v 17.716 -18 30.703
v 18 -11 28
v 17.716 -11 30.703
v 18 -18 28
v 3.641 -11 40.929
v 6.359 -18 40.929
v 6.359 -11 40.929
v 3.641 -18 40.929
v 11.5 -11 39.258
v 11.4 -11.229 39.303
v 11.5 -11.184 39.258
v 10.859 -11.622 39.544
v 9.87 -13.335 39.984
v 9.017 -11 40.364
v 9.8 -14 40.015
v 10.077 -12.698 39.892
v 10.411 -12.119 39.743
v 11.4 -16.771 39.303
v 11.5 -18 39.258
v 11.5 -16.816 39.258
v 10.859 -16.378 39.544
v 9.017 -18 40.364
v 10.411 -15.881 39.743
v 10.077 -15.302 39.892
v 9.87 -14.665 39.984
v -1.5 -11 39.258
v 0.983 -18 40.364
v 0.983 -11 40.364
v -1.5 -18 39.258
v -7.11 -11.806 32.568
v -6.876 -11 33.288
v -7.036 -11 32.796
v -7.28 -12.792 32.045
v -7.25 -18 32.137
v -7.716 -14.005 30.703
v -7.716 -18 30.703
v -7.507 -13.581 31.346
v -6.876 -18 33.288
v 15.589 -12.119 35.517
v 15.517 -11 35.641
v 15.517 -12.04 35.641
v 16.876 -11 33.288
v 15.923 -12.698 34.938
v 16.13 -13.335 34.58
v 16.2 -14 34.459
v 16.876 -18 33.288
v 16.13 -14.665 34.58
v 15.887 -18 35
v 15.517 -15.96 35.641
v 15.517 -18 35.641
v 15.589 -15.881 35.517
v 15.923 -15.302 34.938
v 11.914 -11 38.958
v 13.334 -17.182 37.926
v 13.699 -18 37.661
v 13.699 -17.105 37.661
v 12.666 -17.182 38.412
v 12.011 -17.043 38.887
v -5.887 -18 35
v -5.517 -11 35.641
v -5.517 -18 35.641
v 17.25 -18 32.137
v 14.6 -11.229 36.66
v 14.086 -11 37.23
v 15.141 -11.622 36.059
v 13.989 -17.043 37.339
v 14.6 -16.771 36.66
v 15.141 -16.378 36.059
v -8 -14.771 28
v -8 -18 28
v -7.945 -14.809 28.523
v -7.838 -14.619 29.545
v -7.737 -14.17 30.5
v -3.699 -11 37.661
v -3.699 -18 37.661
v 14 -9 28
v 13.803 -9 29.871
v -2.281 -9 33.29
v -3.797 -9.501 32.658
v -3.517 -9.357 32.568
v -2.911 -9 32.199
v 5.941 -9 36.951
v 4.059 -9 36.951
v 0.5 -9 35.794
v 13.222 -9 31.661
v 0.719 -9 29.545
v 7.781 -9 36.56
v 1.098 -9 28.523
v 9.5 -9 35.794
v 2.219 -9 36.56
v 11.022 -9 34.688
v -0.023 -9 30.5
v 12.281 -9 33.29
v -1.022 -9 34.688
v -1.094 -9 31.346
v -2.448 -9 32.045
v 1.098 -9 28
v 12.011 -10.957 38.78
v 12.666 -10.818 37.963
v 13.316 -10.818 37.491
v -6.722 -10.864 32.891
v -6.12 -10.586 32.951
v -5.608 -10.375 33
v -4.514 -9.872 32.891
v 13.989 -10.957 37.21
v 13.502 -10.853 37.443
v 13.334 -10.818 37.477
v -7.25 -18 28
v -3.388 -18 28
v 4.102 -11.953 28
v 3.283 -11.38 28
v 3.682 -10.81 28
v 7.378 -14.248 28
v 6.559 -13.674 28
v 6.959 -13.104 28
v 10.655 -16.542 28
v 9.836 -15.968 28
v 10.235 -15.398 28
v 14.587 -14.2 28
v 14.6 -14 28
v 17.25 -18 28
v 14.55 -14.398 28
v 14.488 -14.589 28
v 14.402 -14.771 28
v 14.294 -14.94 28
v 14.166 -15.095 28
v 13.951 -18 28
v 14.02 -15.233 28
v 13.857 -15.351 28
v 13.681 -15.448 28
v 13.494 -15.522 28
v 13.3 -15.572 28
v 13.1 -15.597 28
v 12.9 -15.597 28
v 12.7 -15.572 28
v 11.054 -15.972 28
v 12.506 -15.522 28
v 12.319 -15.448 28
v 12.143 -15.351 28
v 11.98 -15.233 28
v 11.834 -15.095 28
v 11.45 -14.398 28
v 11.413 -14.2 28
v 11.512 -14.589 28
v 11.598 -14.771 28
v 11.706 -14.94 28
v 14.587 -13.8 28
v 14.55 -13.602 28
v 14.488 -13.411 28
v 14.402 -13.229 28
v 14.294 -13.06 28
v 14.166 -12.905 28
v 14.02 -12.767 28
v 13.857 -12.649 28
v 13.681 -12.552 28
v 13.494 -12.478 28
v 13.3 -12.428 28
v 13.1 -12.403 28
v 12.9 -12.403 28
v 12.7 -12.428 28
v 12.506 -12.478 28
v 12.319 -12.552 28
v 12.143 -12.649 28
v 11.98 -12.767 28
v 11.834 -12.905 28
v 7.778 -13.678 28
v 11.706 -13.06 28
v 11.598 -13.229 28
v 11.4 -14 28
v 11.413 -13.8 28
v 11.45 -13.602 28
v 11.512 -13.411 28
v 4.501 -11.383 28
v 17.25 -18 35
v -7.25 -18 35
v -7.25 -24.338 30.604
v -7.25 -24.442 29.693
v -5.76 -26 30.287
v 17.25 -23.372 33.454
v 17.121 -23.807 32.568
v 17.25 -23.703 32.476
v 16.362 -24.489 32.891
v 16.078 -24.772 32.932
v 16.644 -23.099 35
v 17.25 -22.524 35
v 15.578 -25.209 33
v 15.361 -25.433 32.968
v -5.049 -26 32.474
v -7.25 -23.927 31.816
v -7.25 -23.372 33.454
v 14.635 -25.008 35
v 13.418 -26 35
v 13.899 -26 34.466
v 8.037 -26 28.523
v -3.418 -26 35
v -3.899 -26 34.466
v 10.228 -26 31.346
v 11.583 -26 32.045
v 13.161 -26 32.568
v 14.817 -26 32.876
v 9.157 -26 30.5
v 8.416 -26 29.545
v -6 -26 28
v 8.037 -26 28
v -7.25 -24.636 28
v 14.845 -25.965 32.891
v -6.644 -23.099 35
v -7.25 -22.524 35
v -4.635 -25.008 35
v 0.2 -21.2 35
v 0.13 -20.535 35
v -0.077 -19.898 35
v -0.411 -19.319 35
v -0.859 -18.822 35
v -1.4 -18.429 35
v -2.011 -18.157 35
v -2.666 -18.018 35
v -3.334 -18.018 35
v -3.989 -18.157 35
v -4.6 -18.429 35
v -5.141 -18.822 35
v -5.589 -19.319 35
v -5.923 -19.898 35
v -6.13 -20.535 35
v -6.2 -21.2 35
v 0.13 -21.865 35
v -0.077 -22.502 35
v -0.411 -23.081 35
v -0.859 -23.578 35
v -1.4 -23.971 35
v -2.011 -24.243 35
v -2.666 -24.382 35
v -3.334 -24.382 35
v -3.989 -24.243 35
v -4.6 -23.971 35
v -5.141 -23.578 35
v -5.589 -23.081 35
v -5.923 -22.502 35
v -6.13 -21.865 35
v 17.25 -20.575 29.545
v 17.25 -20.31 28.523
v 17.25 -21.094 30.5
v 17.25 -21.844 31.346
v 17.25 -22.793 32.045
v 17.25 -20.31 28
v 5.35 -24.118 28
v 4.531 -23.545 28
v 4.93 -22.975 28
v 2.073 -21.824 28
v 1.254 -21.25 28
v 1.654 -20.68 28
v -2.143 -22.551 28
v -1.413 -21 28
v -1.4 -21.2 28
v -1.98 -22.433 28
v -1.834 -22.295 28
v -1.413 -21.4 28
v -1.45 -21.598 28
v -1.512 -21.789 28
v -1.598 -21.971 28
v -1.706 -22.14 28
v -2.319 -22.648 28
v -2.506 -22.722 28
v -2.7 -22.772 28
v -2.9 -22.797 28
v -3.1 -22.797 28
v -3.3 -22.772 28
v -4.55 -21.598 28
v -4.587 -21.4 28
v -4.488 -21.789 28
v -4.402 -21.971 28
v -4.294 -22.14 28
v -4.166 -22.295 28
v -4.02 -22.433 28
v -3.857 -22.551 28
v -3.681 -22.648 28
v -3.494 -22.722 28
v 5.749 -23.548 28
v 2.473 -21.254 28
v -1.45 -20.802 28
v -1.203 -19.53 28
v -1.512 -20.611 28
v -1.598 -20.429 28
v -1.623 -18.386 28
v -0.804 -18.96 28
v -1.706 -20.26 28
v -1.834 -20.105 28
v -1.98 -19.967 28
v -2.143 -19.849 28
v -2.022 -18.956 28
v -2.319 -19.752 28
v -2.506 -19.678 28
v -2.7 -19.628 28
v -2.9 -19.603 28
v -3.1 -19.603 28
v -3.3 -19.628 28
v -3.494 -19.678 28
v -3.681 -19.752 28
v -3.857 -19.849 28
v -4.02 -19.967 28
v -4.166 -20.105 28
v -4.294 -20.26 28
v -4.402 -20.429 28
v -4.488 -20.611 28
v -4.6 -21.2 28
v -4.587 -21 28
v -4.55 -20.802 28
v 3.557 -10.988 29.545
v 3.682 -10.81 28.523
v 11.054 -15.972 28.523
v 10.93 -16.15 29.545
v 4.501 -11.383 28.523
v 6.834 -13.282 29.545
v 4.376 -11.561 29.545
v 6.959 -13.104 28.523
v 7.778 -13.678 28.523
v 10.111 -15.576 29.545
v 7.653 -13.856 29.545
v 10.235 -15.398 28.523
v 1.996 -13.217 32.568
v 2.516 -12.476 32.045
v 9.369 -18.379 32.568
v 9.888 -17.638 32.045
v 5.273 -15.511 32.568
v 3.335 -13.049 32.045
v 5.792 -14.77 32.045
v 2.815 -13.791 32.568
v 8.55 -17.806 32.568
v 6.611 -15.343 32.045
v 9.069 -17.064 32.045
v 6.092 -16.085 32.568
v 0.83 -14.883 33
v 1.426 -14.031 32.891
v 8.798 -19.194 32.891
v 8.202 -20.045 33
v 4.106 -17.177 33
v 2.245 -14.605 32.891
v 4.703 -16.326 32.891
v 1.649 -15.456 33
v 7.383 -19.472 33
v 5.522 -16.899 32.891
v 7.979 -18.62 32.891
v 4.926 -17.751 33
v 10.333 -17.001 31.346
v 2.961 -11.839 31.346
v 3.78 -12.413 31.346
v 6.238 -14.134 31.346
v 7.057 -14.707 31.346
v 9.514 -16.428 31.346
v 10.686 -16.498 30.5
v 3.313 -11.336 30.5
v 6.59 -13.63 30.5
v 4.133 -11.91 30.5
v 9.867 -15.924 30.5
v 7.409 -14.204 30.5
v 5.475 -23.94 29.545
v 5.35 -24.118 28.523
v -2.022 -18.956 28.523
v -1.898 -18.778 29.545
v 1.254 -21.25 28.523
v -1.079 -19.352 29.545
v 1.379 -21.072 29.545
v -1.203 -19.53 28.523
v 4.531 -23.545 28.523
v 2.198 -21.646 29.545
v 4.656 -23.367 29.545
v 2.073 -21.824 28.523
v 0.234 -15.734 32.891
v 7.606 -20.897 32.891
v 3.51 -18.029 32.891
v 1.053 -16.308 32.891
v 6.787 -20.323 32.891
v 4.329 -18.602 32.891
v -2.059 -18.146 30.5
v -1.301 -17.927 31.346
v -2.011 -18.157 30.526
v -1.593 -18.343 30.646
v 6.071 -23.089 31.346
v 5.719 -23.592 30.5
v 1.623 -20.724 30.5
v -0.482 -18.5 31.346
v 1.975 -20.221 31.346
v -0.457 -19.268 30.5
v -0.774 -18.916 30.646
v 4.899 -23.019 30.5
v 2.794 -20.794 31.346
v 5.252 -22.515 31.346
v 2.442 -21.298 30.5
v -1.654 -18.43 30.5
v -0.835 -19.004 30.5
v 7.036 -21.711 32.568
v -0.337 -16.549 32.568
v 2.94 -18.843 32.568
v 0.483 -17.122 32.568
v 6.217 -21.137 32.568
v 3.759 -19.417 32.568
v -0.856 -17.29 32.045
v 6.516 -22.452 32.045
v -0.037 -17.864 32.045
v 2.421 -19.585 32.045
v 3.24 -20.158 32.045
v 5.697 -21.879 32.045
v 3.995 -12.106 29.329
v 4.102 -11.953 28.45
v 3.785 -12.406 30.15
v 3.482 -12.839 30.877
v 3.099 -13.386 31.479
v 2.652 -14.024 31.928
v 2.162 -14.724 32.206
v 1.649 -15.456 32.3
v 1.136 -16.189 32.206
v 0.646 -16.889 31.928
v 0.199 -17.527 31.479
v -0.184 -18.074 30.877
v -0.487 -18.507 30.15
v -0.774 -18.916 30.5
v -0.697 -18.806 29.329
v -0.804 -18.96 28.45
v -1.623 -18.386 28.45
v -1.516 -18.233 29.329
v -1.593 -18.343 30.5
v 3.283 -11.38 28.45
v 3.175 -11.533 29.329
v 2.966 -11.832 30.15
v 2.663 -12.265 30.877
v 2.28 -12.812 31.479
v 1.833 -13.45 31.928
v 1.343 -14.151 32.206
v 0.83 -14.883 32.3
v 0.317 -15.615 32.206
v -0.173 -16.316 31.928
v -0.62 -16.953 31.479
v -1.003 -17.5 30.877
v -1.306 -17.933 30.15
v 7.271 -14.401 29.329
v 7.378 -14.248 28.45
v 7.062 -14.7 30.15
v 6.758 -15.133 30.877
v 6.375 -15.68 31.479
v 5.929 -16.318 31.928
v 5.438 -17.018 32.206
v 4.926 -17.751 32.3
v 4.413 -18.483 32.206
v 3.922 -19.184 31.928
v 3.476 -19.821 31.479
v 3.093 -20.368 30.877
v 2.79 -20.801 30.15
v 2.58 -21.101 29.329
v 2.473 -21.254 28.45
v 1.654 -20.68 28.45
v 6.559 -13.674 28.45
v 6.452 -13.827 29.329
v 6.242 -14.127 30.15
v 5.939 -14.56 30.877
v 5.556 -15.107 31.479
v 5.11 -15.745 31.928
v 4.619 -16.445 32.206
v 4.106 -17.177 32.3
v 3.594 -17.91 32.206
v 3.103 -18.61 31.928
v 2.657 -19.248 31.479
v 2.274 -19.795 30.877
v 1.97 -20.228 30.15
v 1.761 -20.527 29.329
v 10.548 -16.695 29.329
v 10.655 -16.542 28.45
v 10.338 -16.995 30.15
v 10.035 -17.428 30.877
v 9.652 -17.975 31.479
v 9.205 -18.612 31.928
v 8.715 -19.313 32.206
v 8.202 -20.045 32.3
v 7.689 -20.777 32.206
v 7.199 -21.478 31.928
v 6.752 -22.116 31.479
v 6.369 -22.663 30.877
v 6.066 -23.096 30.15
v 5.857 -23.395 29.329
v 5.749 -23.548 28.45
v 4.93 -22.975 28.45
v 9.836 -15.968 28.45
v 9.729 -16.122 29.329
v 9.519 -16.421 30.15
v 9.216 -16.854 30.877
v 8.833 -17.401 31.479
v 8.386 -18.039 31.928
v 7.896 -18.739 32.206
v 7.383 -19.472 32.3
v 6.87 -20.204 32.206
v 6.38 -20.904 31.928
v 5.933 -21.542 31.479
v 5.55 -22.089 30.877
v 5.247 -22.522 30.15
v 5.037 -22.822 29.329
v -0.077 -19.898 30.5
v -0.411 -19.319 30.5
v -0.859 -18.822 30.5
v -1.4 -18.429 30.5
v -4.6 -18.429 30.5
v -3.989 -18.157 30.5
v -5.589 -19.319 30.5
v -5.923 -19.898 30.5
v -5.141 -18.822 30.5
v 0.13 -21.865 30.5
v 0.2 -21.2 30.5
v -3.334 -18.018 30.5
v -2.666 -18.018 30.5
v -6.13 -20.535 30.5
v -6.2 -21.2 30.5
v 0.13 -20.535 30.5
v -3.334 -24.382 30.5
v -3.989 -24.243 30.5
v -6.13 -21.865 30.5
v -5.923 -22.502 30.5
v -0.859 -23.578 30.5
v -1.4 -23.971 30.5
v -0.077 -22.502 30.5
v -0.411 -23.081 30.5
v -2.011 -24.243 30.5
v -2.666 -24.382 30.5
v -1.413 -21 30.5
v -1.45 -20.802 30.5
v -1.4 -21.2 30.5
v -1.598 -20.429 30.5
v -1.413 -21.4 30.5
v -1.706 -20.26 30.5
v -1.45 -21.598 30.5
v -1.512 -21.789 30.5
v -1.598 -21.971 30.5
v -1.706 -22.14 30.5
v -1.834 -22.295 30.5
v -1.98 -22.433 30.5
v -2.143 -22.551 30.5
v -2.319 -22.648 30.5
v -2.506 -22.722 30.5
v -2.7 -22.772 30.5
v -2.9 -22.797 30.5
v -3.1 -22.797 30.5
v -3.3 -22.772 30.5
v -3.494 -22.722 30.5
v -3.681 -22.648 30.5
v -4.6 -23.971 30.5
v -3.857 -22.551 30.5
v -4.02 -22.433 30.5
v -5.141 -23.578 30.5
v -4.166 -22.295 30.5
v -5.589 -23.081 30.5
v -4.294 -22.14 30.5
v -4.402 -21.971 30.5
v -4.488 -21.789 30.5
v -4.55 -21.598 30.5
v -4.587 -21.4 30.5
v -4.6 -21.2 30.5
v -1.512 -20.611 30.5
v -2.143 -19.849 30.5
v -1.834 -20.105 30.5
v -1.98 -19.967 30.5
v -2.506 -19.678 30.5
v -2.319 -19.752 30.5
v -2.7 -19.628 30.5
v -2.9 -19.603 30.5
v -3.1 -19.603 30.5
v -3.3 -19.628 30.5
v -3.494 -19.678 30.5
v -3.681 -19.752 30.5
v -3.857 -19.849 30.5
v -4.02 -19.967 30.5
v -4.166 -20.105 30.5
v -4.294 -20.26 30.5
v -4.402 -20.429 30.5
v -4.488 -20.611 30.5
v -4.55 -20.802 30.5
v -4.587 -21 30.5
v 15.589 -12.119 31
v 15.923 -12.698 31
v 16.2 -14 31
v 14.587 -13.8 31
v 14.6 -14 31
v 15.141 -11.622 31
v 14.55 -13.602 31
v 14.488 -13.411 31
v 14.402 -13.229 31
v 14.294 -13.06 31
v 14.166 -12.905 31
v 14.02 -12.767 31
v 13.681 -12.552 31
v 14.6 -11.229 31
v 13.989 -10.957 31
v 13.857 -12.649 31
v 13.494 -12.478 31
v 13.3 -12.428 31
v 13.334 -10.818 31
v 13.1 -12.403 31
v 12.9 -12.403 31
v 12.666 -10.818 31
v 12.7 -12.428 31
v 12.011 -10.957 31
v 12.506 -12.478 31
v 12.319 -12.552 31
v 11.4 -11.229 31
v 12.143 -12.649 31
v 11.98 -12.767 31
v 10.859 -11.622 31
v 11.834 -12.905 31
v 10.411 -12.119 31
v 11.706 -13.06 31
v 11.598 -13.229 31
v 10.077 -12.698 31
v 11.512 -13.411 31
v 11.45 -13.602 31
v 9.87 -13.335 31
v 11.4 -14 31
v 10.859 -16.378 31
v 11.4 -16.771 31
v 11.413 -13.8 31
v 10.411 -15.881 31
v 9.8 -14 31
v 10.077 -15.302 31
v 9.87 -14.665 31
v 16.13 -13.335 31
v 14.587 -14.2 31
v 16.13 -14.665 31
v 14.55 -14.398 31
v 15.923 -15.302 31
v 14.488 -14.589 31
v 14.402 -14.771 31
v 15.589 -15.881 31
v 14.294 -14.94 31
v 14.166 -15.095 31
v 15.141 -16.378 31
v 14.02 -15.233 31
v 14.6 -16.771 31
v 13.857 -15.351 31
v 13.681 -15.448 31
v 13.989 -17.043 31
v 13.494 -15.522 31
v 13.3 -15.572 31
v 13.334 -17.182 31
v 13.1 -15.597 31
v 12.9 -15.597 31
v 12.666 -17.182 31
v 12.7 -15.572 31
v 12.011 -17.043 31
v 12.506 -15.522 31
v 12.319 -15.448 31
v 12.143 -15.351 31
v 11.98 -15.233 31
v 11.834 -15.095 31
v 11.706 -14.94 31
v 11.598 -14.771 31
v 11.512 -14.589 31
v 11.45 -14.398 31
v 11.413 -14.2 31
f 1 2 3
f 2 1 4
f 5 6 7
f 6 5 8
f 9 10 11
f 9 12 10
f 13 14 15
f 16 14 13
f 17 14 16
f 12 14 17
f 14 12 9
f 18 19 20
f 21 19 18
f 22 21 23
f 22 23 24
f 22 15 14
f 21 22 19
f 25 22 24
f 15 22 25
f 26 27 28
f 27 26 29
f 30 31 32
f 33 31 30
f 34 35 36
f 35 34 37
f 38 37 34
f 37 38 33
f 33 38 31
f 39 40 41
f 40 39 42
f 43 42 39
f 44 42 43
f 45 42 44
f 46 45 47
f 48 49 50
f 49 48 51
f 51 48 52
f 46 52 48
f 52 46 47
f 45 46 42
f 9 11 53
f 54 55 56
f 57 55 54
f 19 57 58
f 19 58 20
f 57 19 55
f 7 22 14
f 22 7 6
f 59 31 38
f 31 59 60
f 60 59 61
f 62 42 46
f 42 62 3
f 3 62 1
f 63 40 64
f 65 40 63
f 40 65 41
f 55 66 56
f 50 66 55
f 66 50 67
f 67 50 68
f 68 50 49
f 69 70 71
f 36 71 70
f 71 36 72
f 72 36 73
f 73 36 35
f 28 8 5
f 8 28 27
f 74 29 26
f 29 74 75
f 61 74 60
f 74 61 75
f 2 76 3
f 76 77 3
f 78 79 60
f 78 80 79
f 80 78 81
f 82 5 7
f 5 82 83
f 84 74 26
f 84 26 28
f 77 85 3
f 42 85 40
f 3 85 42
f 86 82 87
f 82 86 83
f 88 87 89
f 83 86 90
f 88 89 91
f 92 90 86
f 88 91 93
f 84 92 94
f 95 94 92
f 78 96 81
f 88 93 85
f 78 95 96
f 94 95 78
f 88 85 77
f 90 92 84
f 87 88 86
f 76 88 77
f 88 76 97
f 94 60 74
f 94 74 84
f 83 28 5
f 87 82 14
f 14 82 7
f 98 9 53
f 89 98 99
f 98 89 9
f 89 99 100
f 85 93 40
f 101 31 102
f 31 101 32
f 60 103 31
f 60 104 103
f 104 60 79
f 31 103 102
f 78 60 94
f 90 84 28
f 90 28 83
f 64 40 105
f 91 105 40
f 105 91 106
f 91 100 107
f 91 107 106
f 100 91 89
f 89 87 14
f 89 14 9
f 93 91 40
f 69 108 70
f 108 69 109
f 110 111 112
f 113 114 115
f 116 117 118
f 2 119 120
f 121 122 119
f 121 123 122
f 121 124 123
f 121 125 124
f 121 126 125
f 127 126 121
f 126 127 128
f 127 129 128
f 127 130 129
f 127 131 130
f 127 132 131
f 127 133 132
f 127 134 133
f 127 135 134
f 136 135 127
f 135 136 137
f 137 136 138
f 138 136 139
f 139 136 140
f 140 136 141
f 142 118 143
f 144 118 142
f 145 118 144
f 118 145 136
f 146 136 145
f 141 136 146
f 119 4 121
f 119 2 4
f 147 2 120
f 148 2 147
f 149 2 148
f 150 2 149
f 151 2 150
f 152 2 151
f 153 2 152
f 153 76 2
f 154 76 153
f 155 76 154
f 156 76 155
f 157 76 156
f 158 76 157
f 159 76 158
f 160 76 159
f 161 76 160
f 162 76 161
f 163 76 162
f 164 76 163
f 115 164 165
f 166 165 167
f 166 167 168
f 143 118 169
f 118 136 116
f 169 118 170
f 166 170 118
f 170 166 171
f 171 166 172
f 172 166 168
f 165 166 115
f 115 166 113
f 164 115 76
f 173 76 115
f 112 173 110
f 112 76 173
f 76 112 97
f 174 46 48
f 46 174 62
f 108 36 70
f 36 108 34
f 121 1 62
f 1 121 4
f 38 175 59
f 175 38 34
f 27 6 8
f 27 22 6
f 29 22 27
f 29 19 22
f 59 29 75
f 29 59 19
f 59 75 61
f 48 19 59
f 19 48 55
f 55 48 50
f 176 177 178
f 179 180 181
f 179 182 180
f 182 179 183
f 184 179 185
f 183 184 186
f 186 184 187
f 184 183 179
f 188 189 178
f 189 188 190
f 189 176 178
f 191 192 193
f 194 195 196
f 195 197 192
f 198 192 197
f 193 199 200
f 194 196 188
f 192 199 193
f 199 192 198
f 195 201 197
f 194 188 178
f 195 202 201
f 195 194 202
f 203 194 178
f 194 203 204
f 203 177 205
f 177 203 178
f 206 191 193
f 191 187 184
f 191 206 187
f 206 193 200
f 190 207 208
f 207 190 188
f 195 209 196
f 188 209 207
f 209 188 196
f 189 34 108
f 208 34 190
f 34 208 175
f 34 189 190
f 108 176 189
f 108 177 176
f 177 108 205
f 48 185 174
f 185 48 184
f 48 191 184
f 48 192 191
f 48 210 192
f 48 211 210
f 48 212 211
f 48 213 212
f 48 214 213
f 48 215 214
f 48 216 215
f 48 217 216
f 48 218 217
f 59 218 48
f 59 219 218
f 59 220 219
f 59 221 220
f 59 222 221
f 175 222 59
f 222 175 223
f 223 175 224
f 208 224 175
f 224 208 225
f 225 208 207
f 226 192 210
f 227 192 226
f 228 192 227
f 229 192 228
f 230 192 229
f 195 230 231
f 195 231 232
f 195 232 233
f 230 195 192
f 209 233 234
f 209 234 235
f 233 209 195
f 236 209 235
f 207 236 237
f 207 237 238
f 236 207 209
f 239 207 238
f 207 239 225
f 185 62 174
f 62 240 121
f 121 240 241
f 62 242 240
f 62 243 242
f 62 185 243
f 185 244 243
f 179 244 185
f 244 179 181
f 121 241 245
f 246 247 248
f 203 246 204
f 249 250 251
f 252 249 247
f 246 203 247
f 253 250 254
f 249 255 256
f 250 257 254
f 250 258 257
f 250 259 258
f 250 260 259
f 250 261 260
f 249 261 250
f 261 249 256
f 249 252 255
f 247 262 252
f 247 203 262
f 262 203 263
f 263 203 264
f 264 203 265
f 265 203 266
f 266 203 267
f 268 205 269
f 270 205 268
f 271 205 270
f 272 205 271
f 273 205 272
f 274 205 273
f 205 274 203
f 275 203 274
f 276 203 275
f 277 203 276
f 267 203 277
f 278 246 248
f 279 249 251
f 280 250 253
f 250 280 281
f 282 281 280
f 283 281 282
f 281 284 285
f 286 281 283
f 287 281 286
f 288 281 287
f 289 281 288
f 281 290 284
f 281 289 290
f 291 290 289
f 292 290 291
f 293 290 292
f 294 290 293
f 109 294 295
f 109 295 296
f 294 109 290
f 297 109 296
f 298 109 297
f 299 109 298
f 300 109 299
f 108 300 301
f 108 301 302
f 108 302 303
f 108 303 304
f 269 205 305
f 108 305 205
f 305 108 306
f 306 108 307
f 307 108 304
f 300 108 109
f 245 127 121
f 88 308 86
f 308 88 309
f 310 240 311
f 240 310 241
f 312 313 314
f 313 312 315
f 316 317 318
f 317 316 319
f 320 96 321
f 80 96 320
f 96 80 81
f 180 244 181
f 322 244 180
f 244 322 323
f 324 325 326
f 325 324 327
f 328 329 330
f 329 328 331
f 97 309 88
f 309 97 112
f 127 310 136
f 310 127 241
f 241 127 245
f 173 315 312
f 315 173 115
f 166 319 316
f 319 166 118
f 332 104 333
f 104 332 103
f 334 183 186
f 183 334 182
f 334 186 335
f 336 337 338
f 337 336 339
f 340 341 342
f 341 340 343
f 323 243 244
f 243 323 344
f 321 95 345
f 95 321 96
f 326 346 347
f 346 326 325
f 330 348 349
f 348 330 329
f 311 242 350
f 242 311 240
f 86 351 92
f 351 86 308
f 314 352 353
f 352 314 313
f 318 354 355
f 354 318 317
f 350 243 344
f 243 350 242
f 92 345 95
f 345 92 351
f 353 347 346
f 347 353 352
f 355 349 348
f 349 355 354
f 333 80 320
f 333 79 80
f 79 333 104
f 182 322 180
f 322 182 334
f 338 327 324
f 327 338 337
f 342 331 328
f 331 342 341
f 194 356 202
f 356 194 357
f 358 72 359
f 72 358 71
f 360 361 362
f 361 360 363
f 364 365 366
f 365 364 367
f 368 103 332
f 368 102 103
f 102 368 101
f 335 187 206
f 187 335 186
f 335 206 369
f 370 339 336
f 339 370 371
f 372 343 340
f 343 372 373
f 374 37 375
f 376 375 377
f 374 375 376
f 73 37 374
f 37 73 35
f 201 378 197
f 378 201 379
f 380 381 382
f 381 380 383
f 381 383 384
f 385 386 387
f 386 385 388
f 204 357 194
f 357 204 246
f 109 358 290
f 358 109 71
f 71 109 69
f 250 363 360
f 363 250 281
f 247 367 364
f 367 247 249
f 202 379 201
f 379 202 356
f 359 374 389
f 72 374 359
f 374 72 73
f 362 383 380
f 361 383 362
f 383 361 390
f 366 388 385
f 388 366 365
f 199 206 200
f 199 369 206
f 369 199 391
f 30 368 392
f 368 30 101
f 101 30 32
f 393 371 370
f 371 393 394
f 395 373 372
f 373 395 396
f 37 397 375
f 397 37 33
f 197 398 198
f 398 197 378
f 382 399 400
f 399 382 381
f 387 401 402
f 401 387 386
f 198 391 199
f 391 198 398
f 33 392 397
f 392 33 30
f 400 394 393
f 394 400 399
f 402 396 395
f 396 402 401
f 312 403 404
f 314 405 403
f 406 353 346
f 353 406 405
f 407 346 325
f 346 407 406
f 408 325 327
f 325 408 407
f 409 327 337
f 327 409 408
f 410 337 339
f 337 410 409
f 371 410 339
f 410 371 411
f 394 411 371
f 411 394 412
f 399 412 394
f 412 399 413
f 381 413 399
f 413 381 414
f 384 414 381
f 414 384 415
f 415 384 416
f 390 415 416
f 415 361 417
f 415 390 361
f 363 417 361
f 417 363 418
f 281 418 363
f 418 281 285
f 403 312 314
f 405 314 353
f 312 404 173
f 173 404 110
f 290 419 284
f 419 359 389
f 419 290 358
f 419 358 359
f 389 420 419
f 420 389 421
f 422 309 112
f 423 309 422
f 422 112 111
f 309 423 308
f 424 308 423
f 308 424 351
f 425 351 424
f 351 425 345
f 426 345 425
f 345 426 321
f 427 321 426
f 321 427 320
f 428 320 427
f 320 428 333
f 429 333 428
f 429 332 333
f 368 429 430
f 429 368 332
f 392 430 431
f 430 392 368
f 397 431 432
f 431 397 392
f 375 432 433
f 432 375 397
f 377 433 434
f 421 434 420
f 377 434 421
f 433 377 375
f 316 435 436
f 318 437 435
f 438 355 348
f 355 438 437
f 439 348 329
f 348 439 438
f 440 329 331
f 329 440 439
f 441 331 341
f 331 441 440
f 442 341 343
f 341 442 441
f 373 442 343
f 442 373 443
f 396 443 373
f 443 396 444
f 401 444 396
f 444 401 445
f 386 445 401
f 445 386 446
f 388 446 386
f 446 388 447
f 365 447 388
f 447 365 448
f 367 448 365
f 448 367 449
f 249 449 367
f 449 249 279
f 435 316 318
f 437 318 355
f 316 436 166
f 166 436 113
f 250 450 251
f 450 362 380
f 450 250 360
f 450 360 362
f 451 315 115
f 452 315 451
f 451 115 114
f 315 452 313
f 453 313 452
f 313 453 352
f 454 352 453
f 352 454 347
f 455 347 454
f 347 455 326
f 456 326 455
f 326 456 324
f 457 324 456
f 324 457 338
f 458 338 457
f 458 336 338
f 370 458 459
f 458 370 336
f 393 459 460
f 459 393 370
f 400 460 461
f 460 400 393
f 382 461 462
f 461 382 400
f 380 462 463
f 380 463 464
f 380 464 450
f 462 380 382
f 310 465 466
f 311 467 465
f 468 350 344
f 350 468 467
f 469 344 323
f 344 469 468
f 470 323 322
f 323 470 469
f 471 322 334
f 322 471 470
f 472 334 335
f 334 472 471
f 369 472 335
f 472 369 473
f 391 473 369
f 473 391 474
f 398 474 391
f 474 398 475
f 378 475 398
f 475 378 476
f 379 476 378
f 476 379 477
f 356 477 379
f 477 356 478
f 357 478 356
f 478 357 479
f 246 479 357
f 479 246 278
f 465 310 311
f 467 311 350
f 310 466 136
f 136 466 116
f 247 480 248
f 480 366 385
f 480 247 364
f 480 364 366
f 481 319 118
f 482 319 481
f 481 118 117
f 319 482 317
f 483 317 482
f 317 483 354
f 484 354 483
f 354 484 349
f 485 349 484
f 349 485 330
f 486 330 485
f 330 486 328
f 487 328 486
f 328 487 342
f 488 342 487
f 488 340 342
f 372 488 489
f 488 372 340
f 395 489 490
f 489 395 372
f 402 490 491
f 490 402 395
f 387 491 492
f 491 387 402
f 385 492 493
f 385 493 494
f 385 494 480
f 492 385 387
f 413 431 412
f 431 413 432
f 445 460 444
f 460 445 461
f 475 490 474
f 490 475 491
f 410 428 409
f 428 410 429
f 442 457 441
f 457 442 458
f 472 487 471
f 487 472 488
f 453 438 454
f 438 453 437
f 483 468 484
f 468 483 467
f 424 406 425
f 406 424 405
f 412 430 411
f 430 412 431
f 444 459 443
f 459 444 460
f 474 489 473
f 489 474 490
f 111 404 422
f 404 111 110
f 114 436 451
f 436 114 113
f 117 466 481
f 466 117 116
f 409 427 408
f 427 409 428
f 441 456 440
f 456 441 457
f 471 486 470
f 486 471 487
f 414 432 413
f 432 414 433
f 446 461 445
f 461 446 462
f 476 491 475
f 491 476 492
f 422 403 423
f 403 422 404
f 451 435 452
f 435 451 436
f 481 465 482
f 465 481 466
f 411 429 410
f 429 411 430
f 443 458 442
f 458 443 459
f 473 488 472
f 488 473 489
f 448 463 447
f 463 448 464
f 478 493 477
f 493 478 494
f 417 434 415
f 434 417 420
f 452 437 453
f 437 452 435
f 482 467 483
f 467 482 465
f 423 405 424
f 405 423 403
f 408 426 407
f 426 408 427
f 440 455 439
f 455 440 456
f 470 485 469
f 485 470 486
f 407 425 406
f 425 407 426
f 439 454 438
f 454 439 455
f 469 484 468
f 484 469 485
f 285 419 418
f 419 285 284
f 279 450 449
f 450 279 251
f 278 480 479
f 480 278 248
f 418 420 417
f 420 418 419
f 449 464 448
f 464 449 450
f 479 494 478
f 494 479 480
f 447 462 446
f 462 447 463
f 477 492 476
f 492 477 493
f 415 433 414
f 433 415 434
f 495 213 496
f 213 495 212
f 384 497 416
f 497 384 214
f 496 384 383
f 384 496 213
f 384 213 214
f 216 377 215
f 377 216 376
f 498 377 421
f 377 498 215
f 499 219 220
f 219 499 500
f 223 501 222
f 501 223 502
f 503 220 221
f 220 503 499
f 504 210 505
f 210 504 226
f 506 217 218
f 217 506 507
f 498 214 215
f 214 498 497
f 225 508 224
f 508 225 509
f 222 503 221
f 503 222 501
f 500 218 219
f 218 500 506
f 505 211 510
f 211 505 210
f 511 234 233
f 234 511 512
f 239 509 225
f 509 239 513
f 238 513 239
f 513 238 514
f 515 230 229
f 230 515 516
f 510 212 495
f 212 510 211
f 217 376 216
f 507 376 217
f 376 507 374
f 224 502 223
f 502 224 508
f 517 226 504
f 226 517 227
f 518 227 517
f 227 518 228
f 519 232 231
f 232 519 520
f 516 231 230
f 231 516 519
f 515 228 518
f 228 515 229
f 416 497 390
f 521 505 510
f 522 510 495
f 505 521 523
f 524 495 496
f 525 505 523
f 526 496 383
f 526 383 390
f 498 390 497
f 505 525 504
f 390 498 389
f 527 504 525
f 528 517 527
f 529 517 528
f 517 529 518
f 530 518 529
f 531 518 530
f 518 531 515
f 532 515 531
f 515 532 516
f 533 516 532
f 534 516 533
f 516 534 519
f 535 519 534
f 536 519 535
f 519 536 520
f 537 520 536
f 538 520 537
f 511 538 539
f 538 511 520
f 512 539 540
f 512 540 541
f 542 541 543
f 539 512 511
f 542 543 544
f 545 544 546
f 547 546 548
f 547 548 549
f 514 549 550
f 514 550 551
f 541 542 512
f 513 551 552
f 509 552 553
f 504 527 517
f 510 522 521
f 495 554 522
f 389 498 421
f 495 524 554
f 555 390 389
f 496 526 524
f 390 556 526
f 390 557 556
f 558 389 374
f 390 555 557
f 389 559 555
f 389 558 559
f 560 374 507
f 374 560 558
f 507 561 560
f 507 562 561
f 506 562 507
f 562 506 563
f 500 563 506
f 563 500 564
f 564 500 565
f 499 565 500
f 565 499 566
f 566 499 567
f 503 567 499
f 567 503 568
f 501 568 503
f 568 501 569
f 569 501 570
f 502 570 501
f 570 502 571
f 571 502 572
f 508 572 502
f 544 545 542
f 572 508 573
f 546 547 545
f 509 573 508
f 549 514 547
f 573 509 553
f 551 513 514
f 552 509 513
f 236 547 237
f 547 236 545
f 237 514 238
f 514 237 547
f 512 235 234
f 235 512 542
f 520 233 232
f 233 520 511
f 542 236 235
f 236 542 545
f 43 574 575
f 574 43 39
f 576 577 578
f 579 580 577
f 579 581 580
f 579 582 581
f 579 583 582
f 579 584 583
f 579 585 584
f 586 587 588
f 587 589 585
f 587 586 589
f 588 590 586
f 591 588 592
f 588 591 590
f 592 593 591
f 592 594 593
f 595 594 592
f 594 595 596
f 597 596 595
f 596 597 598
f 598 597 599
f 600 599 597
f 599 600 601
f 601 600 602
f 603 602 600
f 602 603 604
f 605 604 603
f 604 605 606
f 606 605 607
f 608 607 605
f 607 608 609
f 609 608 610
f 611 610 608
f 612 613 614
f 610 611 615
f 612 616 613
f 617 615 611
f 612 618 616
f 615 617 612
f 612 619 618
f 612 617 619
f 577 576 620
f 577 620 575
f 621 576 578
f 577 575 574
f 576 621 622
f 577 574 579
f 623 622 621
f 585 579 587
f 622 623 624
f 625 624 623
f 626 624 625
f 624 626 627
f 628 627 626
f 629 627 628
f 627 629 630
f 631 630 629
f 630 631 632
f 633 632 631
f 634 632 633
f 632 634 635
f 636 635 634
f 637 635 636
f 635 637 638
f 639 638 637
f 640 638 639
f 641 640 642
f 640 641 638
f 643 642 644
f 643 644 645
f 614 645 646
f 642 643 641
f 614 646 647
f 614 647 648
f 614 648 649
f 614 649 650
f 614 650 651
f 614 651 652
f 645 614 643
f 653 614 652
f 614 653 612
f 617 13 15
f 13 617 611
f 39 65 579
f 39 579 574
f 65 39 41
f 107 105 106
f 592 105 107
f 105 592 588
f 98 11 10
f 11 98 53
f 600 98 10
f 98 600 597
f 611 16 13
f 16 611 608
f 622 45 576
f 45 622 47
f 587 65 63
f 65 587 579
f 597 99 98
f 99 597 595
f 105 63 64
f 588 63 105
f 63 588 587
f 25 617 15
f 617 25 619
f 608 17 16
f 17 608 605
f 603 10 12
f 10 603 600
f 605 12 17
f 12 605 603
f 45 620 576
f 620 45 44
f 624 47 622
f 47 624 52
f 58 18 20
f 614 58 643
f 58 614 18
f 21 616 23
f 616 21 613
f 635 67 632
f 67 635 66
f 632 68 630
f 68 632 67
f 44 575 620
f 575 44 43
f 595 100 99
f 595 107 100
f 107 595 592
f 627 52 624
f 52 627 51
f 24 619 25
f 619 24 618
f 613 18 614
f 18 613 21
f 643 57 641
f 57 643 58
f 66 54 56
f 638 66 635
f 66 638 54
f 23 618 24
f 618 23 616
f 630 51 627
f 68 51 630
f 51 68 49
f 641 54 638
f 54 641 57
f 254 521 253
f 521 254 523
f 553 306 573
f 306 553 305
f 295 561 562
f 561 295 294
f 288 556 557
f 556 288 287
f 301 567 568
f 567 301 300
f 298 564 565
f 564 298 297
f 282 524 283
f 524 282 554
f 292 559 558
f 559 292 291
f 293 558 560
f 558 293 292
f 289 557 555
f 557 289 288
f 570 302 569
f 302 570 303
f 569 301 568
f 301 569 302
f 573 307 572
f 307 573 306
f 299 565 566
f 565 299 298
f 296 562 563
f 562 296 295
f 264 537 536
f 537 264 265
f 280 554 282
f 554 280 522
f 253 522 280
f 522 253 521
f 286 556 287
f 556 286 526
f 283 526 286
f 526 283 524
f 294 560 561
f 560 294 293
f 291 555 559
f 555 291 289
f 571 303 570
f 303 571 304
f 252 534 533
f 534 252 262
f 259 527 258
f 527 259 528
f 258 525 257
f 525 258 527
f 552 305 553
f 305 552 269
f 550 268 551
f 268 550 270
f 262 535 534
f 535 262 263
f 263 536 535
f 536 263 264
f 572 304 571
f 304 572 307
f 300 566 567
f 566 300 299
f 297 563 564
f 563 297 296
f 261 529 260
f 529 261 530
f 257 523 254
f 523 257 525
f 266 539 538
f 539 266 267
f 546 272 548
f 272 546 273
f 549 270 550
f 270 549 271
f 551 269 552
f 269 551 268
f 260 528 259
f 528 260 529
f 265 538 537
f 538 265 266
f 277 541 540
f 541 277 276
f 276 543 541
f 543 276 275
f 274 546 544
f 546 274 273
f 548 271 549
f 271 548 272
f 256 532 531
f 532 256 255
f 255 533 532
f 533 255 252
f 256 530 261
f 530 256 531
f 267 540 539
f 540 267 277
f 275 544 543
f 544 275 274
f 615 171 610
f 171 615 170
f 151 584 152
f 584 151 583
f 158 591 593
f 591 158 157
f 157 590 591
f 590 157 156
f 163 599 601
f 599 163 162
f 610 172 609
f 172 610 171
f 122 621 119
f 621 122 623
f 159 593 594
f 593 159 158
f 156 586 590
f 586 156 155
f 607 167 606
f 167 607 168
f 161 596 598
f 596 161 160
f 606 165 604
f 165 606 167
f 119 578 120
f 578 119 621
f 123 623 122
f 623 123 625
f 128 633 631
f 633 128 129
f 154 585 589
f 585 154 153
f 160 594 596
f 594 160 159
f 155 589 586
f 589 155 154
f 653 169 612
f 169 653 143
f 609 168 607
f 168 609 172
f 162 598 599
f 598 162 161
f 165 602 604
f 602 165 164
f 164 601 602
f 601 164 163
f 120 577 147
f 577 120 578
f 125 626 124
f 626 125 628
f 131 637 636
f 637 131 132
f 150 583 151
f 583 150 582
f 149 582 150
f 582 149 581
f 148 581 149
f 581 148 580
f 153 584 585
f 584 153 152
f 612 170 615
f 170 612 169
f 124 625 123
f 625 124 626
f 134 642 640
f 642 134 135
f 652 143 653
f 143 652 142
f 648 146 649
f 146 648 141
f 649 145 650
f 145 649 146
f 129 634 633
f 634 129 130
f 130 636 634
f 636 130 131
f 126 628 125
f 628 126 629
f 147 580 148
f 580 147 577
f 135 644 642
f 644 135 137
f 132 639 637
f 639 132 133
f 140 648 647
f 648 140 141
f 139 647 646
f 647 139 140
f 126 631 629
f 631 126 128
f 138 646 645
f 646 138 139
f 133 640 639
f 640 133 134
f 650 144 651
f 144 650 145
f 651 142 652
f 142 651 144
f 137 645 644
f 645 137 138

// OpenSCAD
// PRUSA iteration4
// Heatbed cable clip
// GNU GPL v3
// Josef Průša <iam@josefprusa.cz> and contributors
// http://www.reprap.org/wiki/Prusa_Mendel
// http://prusamendel.org

module heatbed_cable_clip()
{
    difference()
    {
        union()
        {
            difference()
            {
                union()
                {
                    // body base
                    translate([75, 99, 28]) rotate([90, 0, 0]) cylinder(h = 15, r = 13, $fn = 30);
                    translate([75, 101, 28]) rotate([90, 0, 0]) cylinder(h = 2, r1 = 9, r2 = 13, $fn = 30);
                }

                // cut flat and shape
                translate([60, 82, 14]) cube([30, 20, 14]);
                translate([60, 72, 20]) cube([30, 20, 30]);
            }

            difference()
            {
                translate([62.75, 84, 28]) cube([24.5, 8, 7]);
                difference()
                {
                    translate([75, 85, 28]) rotate([90, 0, 0]) cube([30, 20, 10], center = true);
                    translate([75, 90, 28]) rotate([90, 0, 0]) cylinder(h = 6, r1 = 16.5, r2 = 11, $fn = 30);
                }
            }
        }

        // cable opening
        translate([61, 102, 28]) rotate([35, 90, 0])

        difference()
        {
            cylinder(h = 35, r = 5, $fn = 30);

            //translate([0, 0, 3]) cylinder(h = 5, r = 5, $fn = 30);
            translate([0, 0, 12]) cylinder(h = 1, r = 5, $fn = 30);
            translate([0, 0, 16]) cylinder(h = 1, r = 5, $fn = 30);
            translate([0, 0, 20]) cylinder(h = 1, r = 5, $fn = 30);

        }
        translate([61, 102, 28]) rotate([35, 90, 0]) cylinder(h = 35, r = 4.3, $fn = 30);

        // screw heads
        translate([67, 88.8, 30.5]) rotate([0, 0, 0]) cylinder(h = 10, r = 3.2, $fn = 30);
        translate([83, 96, 31]) rotate([0, 0, 0]) cylinder(h = 10, r = 3.2, $fn = 30);

        // screws
        translate([67, 88.8, 14]) rotate([0, 0, 0]) cylinder(h = 35, r = 1.6, $fn = 50);
        translate([83, 96, 14]) rotate([0, 0, 0]) cylinder(h = 35, r = 1.6, $fn = 50);
    }
}

translate([-70, -110, 0]) heatbed_cable_clip();
